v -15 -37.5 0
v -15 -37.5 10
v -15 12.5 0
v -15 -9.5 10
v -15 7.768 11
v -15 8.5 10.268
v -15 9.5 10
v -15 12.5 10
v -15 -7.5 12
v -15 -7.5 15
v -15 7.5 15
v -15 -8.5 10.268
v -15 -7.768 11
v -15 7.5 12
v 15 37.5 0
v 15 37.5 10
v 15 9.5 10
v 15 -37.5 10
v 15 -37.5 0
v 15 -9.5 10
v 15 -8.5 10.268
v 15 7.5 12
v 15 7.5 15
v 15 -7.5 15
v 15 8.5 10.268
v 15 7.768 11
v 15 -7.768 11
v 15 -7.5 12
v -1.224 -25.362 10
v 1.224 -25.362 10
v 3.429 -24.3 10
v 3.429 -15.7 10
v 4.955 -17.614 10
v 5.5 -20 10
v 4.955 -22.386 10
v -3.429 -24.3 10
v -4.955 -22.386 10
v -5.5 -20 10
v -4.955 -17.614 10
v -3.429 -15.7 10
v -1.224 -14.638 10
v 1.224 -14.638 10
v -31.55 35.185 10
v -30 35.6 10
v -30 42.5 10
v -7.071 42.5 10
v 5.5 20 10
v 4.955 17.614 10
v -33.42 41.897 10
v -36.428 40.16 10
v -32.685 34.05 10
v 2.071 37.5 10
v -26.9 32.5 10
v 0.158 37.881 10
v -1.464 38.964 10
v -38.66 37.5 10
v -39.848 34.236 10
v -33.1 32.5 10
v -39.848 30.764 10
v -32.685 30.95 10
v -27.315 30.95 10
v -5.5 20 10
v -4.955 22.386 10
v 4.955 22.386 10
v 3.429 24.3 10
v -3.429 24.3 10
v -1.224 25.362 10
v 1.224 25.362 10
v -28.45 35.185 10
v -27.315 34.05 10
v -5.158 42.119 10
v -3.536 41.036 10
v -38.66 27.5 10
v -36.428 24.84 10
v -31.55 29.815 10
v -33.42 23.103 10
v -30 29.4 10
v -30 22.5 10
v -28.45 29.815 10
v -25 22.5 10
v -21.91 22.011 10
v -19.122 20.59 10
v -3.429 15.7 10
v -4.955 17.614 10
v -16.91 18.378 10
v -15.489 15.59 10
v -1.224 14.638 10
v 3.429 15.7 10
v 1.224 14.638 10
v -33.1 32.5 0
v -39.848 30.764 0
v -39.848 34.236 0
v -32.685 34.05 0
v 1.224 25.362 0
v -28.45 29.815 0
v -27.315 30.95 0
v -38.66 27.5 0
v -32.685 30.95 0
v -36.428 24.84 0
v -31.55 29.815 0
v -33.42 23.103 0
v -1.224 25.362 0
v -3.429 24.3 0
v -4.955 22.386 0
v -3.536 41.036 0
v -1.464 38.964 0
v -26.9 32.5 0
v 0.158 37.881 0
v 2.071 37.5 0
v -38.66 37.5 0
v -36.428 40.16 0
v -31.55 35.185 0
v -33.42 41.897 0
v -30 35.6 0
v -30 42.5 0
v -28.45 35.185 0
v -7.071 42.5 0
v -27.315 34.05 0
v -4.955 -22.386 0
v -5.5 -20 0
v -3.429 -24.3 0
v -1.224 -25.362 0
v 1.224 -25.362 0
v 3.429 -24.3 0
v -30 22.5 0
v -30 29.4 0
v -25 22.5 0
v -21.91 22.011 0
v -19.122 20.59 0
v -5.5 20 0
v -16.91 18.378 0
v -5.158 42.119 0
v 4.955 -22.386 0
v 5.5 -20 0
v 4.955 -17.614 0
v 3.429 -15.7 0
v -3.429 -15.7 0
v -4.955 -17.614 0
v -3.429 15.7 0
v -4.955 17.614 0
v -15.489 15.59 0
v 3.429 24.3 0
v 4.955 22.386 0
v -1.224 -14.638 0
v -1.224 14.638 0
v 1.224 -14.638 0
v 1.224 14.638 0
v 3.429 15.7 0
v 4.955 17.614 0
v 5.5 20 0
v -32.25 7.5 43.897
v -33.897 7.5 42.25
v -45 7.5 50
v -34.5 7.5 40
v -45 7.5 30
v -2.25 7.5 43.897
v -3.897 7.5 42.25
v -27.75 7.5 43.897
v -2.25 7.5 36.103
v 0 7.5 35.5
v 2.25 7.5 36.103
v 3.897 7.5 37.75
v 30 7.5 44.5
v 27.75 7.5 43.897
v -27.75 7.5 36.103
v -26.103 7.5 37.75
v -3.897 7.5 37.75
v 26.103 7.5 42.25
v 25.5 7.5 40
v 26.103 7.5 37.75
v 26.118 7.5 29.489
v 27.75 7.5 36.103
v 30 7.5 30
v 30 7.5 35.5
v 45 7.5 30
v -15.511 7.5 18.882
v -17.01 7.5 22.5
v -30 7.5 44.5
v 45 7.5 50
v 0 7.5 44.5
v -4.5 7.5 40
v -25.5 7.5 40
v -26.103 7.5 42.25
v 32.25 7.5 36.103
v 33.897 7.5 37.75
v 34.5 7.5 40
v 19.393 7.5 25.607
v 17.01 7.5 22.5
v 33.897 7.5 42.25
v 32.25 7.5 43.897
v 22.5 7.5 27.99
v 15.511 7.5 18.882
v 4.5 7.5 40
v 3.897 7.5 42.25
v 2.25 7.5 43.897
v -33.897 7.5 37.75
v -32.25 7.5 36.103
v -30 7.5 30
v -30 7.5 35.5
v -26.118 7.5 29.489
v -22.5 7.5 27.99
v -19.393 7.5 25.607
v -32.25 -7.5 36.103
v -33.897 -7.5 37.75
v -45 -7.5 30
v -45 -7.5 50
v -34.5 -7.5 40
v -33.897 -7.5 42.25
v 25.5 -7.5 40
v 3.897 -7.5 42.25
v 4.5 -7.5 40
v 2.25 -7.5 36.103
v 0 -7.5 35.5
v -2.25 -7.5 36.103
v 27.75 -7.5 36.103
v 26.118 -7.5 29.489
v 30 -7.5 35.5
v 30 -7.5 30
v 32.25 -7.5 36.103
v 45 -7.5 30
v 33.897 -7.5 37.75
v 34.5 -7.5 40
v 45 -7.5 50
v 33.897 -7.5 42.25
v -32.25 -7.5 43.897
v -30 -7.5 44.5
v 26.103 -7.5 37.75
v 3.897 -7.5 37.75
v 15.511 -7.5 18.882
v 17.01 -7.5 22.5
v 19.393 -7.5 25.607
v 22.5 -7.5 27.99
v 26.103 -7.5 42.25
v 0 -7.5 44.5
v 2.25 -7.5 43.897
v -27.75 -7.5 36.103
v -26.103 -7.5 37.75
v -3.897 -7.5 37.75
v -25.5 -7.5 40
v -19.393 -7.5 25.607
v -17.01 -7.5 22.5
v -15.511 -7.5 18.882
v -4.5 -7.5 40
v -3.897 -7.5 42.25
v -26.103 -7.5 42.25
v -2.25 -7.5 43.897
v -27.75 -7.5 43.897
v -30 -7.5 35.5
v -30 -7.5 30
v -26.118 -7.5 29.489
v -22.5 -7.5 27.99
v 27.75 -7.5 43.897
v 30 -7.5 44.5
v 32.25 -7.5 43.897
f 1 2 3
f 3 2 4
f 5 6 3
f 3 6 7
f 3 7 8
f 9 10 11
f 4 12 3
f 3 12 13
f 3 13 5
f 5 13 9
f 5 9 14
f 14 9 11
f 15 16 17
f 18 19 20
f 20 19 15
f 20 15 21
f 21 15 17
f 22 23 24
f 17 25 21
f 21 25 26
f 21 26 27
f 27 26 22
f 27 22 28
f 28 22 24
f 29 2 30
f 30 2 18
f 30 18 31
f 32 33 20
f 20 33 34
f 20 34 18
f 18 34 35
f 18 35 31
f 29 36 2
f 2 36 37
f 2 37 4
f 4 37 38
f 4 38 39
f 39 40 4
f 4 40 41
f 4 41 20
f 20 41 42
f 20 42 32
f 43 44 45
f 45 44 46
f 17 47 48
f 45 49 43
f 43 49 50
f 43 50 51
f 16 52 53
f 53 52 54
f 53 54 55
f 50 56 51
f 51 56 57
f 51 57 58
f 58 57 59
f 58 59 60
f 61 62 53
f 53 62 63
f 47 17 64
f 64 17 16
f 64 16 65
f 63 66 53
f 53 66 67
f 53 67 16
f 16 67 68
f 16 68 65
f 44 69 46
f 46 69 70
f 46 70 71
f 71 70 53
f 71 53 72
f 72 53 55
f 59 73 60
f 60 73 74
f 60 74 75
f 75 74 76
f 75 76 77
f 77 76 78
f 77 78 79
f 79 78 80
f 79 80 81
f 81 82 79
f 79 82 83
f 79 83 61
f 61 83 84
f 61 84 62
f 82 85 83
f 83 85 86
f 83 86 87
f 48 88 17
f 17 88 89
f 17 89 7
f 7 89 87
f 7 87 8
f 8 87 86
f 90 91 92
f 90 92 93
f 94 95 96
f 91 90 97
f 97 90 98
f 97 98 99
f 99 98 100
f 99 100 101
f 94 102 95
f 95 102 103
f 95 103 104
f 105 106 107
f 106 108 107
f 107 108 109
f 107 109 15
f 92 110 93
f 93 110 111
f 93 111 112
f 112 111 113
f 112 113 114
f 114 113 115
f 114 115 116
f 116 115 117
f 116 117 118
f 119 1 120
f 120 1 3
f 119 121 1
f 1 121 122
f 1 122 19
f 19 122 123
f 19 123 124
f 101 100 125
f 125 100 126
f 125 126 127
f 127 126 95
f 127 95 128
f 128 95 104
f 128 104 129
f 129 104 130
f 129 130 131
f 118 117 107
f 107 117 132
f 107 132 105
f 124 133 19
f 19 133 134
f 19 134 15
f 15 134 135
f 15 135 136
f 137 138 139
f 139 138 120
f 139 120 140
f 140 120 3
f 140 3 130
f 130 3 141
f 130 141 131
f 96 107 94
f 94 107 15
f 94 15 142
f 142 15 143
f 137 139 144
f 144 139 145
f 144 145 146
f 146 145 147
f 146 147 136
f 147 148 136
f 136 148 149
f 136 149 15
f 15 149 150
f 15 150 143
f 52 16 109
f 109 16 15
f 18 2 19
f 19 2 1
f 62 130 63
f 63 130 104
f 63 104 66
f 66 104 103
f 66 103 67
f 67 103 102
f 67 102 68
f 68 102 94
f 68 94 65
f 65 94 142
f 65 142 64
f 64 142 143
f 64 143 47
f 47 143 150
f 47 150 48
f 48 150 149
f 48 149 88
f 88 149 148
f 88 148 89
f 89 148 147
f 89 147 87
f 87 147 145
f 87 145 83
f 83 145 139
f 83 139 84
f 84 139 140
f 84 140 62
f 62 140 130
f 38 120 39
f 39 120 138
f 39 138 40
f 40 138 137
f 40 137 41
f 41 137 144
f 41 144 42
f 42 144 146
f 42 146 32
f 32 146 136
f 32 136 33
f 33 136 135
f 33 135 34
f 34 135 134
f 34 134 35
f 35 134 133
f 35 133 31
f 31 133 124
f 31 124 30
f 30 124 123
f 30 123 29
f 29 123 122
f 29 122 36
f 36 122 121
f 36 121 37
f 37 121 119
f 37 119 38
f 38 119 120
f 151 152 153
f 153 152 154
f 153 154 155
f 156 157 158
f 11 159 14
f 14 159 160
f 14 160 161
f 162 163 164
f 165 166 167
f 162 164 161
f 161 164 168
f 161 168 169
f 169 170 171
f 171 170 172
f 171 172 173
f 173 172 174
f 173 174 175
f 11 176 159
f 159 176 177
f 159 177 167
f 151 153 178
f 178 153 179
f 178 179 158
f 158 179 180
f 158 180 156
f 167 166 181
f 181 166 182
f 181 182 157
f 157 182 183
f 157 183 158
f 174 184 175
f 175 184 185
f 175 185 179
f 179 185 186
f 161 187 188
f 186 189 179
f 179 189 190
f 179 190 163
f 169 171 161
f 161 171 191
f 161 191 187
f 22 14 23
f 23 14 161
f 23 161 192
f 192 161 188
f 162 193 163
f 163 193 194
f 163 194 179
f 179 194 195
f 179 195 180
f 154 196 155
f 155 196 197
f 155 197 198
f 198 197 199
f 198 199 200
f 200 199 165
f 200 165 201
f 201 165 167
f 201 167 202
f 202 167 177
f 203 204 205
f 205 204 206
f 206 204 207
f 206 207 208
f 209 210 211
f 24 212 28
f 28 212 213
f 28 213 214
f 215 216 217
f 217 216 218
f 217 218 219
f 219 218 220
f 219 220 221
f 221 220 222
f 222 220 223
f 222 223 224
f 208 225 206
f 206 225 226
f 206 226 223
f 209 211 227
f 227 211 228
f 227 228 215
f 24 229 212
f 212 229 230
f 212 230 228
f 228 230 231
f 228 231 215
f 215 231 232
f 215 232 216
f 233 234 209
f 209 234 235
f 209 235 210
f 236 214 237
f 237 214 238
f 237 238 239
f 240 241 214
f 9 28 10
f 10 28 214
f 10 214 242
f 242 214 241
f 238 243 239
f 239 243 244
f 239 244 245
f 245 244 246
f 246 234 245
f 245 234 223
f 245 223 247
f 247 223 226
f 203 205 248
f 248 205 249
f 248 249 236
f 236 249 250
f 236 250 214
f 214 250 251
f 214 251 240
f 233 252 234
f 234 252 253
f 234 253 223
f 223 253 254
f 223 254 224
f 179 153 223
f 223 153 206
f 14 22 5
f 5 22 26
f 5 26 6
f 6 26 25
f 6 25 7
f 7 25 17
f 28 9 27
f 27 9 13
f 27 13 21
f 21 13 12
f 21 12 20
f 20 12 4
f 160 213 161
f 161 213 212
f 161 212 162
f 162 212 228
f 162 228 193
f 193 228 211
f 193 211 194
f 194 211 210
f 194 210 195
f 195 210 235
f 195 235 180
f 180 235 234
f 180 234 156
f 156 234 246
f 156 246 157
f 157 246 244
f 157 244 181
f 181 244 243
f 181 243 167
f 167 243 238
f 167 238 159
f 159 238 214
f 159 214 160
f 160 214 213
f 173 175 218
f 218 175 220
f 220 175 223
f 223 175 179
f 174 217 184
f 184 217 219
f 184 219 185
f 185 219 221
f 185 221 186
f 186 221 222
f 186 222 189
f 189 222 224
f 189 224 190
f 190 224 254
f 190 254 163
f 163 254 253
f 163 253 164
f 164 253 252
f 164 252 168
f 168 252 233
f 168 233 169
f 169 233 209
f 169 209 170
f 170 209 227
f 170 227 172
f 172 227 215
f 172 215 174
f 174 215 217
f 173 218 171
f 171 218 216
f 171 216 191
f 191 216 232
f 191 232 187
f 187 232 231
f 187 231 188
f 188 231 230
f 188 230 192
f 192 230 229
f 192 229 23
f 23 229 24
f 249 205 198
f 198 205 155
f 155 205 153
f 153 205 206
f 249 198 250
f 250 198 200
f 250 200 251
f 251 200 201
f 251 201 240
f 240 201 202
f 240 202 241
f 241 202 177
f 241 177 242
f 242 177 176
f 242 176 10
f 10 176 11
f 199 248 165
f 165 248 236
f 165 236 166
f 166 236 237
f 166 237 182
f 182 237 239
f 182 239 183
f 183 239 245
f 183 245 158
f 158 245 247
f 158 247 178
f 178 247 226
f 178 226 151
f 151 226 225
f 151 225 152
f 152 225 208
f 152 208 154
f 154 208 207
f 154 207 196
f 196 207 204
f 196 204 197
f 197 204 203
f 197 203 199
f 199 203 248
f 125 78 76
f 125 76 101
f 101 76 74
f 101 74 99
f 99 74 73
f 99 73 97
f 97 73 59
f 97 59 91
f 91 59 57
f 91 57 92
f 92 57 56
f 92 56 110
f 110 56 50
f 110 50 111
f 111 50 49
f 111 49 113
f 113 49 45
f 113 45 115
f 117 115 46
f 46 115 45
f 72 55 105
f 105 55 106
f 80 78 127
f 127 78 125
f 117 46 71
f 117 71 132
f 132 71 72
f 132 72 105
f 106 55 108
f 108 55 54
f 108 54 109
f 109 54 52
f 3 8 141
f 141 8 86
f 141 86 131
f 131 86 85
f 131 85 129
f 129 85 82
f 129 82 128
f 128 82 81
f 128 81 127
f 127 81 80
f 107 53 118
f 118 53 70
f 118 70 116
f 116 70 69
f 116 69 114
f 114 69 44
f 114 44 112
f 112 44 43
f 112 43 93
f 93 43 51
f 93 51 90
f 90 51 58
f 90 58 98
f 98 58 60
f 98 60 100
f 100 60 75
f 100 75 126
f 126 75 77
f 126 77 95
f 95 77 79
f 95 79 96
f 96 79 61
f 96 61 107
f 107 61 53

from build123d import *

# Parameters (mm, degrees)
SKETCH_1_W          = 30
SKETCH_1_H          = 75
SKETCH_1_R          = 5.5
EXTRUDE_1_DEPTH     = 10
SKETCH_2_W          = 30
SKETCH_2_H          = 15
EXTRUDE_2_DEPTH     = 40
FILLET_1_R          = 2
SKETCH_3_R          = 4.5
CUT_EXTRUDE_1_DEPTH = 15
SKETCH_5_W          = 20
SKETCH_5_H          = 15
EXTRUDE_3_DEPTH     = 30
SKETCH_6_R          = 4.5
CUT_EXTRUDE_2_DEPTH = 30
FILLET_2_R          = 15
SKETCH_7_W          = 20
SKETCH_7_H          = 15
EXTRUDE_4_DEPTH     = 30
FILLET_3_R          = 15
SKETCH_8_R          = 4.5
CUT_EXTRUDE_3_DEPTH = 30
EXTRUDE_5_DEPTH     = 10
FILLET_4_R          = 5
FILLET_5_R          = 10
SKETCH_10_R         = 3.1
CUT_EXTRUDE_4_DEPTH = 10


with BuildPart() as part:
    # 草图1 → 凸台-拉伸1 (new body)
    with BuildSketch(Plane.XY):
        Rectangle(SKETCH_1_W, SKETCH_1_H)
        with Locations((0, 20)):
            Circle(SKETCH_1_R, mode=Mode.SUBTRACT)
        with Locations((0, -20)):
            Circle(SKETCH_1_R, mode=Mode.SUBTRACT)
    extrude(amount=EXTRUDE_1_DEPTH)

    # 草图2 → 凸台-拉伸2 (add)
    with BuildSketch(Plane.XY.offset(10)):
        Rectangle(SKETCH_2_W, SKETCH_2_H)
    extrude(amount=EXTRUDE_2_DEPTH)

    # 圆角1
    fillet_1_edges = [part.edges().sort_by_distance(p)[0] for p in [
        (0, 7.5, 10),
        (0, -7.5, 10),
    ]]
    fillet(fillet_1_edges, radius=FILLET_1_R)

    # 草图3 → 切除-拉伸1 (cut)
    with BuildSketch(Plane(origin=(0, -7.5, 0), x_dir=(-1, 0, 0), z_dir=(0, -1, 0))):
        with Locations((0, -40)):
            Circle(SKETCH_3_R)
    extrude(amount=-CUT_EXTRUDE_1_DEPTH, mode=Mode.SUBTRACT)

    # 草图5 → 凸台-拉伸3 (add)
    with BuildSketch(Plane(origin=(15, 0, 0), x_dir=(0, 0, -1), z_dir=(1, 0, 0))):
        with Locations((-40, 0)):
            Rectangle(SKETCH_5_W, SKETCH_5_H)
    extrude(amount=EXTRUDE_3_DEPTH)

    # 草图6 → 切除-拉伸2 (cut)
    with BuildSketch(Plane(origin=(0, -7.5, 0), x_dir=(-1, 0, 0), z_dir=(0, -1, 0))):
        with Locations((-30, -40)):
            Circle(SKETCH_6_R)
    extrude(amount=-CUT_EXTRUDE_2_DEPTH, mode=Mode.SUBTRACT)

    # 圆角2
    fillet_2_edges = [part.edges().sort_by_distance(p)[0] for p in [
        (15, 0, 30),
    ]]
    fillet(fillet_2_edges, radius=FILLET_2_R)

    # 草图7 → 凸台-拉伸4 (add)
    with BuildSketch(Plane.ZY.offset(15)):
        with Locations((40, 0)):
            Rectangle(SKETCH_7_W, SKETCH_7_H)
    extrude(amount=EXTRUDE_4_DEPTH)

    # 圆角3
    fillet_3_edges = [part.edges().sort_by_distance(p)[0] for p in [
        (-15, 0, 30),
    ]]
    fillet(fillet_3_edges, radius=FILLET_3_R)

    # 草图8 → 切除-拉伸3 (cut)
    with BuildSketch(Plane(origin=(0, -7.5, 0), x_dir=(-1, 0, 0), z_dir=(0, -1, 0))):
        with Locations((30, -40)):
            Circle(SKETCH_8_R)
    extrude(amount=-CUT_EXTRUDE_3_DEPTH, mode=Mode.SUBTRACT)

    # 草图9 → 凸台-拉伸5 (add)
    with BuildSketch(Plane.XY.offset(10)):
        with BuildLine():
            Line((-30, 42.5), (-5, 42.5))
            Line((-5, 42.5), (0, 37.5))
            Line((0, 37.5), (-15, 22.5))
            Line((-15, 22.5), (-30, 22.5))
            ThreePointArc((-30, 22.5), (-40, 32.5), (-30, 42.5))
        make_face()
    extrude(amount=-EXTRUDE_5_DEPTH)

    # 圆角4
    fillet_4_edges = [part.edges().sort_by_distance(p)[0] for p in [
        (-5, 42.5, 5),
        (0, 37.5, 5),
    ]]
    fillet(fillet_4_edges, radius=FILLET_4_R)

    # 圆角5
    fillet_5_edges = [part.edges().sort_by_distance(p)[0] for p in [
        (-15, 22.5, 5),
    ]]
    fillet(fillet_5_edges, radius=FILLET_5_R)

    # 草图10 → 切除-拉伸4 (cut)
    with BuildSketch(Plane.XY.offset(10)):
        with Locations((-30, 32.5)):
            Circle(SKETCH_10_R)
    extrude(amount=-CUT_EXTRUDE_4_DEPTH, mode=Mode.SUBTRACT)


solid = part.part
